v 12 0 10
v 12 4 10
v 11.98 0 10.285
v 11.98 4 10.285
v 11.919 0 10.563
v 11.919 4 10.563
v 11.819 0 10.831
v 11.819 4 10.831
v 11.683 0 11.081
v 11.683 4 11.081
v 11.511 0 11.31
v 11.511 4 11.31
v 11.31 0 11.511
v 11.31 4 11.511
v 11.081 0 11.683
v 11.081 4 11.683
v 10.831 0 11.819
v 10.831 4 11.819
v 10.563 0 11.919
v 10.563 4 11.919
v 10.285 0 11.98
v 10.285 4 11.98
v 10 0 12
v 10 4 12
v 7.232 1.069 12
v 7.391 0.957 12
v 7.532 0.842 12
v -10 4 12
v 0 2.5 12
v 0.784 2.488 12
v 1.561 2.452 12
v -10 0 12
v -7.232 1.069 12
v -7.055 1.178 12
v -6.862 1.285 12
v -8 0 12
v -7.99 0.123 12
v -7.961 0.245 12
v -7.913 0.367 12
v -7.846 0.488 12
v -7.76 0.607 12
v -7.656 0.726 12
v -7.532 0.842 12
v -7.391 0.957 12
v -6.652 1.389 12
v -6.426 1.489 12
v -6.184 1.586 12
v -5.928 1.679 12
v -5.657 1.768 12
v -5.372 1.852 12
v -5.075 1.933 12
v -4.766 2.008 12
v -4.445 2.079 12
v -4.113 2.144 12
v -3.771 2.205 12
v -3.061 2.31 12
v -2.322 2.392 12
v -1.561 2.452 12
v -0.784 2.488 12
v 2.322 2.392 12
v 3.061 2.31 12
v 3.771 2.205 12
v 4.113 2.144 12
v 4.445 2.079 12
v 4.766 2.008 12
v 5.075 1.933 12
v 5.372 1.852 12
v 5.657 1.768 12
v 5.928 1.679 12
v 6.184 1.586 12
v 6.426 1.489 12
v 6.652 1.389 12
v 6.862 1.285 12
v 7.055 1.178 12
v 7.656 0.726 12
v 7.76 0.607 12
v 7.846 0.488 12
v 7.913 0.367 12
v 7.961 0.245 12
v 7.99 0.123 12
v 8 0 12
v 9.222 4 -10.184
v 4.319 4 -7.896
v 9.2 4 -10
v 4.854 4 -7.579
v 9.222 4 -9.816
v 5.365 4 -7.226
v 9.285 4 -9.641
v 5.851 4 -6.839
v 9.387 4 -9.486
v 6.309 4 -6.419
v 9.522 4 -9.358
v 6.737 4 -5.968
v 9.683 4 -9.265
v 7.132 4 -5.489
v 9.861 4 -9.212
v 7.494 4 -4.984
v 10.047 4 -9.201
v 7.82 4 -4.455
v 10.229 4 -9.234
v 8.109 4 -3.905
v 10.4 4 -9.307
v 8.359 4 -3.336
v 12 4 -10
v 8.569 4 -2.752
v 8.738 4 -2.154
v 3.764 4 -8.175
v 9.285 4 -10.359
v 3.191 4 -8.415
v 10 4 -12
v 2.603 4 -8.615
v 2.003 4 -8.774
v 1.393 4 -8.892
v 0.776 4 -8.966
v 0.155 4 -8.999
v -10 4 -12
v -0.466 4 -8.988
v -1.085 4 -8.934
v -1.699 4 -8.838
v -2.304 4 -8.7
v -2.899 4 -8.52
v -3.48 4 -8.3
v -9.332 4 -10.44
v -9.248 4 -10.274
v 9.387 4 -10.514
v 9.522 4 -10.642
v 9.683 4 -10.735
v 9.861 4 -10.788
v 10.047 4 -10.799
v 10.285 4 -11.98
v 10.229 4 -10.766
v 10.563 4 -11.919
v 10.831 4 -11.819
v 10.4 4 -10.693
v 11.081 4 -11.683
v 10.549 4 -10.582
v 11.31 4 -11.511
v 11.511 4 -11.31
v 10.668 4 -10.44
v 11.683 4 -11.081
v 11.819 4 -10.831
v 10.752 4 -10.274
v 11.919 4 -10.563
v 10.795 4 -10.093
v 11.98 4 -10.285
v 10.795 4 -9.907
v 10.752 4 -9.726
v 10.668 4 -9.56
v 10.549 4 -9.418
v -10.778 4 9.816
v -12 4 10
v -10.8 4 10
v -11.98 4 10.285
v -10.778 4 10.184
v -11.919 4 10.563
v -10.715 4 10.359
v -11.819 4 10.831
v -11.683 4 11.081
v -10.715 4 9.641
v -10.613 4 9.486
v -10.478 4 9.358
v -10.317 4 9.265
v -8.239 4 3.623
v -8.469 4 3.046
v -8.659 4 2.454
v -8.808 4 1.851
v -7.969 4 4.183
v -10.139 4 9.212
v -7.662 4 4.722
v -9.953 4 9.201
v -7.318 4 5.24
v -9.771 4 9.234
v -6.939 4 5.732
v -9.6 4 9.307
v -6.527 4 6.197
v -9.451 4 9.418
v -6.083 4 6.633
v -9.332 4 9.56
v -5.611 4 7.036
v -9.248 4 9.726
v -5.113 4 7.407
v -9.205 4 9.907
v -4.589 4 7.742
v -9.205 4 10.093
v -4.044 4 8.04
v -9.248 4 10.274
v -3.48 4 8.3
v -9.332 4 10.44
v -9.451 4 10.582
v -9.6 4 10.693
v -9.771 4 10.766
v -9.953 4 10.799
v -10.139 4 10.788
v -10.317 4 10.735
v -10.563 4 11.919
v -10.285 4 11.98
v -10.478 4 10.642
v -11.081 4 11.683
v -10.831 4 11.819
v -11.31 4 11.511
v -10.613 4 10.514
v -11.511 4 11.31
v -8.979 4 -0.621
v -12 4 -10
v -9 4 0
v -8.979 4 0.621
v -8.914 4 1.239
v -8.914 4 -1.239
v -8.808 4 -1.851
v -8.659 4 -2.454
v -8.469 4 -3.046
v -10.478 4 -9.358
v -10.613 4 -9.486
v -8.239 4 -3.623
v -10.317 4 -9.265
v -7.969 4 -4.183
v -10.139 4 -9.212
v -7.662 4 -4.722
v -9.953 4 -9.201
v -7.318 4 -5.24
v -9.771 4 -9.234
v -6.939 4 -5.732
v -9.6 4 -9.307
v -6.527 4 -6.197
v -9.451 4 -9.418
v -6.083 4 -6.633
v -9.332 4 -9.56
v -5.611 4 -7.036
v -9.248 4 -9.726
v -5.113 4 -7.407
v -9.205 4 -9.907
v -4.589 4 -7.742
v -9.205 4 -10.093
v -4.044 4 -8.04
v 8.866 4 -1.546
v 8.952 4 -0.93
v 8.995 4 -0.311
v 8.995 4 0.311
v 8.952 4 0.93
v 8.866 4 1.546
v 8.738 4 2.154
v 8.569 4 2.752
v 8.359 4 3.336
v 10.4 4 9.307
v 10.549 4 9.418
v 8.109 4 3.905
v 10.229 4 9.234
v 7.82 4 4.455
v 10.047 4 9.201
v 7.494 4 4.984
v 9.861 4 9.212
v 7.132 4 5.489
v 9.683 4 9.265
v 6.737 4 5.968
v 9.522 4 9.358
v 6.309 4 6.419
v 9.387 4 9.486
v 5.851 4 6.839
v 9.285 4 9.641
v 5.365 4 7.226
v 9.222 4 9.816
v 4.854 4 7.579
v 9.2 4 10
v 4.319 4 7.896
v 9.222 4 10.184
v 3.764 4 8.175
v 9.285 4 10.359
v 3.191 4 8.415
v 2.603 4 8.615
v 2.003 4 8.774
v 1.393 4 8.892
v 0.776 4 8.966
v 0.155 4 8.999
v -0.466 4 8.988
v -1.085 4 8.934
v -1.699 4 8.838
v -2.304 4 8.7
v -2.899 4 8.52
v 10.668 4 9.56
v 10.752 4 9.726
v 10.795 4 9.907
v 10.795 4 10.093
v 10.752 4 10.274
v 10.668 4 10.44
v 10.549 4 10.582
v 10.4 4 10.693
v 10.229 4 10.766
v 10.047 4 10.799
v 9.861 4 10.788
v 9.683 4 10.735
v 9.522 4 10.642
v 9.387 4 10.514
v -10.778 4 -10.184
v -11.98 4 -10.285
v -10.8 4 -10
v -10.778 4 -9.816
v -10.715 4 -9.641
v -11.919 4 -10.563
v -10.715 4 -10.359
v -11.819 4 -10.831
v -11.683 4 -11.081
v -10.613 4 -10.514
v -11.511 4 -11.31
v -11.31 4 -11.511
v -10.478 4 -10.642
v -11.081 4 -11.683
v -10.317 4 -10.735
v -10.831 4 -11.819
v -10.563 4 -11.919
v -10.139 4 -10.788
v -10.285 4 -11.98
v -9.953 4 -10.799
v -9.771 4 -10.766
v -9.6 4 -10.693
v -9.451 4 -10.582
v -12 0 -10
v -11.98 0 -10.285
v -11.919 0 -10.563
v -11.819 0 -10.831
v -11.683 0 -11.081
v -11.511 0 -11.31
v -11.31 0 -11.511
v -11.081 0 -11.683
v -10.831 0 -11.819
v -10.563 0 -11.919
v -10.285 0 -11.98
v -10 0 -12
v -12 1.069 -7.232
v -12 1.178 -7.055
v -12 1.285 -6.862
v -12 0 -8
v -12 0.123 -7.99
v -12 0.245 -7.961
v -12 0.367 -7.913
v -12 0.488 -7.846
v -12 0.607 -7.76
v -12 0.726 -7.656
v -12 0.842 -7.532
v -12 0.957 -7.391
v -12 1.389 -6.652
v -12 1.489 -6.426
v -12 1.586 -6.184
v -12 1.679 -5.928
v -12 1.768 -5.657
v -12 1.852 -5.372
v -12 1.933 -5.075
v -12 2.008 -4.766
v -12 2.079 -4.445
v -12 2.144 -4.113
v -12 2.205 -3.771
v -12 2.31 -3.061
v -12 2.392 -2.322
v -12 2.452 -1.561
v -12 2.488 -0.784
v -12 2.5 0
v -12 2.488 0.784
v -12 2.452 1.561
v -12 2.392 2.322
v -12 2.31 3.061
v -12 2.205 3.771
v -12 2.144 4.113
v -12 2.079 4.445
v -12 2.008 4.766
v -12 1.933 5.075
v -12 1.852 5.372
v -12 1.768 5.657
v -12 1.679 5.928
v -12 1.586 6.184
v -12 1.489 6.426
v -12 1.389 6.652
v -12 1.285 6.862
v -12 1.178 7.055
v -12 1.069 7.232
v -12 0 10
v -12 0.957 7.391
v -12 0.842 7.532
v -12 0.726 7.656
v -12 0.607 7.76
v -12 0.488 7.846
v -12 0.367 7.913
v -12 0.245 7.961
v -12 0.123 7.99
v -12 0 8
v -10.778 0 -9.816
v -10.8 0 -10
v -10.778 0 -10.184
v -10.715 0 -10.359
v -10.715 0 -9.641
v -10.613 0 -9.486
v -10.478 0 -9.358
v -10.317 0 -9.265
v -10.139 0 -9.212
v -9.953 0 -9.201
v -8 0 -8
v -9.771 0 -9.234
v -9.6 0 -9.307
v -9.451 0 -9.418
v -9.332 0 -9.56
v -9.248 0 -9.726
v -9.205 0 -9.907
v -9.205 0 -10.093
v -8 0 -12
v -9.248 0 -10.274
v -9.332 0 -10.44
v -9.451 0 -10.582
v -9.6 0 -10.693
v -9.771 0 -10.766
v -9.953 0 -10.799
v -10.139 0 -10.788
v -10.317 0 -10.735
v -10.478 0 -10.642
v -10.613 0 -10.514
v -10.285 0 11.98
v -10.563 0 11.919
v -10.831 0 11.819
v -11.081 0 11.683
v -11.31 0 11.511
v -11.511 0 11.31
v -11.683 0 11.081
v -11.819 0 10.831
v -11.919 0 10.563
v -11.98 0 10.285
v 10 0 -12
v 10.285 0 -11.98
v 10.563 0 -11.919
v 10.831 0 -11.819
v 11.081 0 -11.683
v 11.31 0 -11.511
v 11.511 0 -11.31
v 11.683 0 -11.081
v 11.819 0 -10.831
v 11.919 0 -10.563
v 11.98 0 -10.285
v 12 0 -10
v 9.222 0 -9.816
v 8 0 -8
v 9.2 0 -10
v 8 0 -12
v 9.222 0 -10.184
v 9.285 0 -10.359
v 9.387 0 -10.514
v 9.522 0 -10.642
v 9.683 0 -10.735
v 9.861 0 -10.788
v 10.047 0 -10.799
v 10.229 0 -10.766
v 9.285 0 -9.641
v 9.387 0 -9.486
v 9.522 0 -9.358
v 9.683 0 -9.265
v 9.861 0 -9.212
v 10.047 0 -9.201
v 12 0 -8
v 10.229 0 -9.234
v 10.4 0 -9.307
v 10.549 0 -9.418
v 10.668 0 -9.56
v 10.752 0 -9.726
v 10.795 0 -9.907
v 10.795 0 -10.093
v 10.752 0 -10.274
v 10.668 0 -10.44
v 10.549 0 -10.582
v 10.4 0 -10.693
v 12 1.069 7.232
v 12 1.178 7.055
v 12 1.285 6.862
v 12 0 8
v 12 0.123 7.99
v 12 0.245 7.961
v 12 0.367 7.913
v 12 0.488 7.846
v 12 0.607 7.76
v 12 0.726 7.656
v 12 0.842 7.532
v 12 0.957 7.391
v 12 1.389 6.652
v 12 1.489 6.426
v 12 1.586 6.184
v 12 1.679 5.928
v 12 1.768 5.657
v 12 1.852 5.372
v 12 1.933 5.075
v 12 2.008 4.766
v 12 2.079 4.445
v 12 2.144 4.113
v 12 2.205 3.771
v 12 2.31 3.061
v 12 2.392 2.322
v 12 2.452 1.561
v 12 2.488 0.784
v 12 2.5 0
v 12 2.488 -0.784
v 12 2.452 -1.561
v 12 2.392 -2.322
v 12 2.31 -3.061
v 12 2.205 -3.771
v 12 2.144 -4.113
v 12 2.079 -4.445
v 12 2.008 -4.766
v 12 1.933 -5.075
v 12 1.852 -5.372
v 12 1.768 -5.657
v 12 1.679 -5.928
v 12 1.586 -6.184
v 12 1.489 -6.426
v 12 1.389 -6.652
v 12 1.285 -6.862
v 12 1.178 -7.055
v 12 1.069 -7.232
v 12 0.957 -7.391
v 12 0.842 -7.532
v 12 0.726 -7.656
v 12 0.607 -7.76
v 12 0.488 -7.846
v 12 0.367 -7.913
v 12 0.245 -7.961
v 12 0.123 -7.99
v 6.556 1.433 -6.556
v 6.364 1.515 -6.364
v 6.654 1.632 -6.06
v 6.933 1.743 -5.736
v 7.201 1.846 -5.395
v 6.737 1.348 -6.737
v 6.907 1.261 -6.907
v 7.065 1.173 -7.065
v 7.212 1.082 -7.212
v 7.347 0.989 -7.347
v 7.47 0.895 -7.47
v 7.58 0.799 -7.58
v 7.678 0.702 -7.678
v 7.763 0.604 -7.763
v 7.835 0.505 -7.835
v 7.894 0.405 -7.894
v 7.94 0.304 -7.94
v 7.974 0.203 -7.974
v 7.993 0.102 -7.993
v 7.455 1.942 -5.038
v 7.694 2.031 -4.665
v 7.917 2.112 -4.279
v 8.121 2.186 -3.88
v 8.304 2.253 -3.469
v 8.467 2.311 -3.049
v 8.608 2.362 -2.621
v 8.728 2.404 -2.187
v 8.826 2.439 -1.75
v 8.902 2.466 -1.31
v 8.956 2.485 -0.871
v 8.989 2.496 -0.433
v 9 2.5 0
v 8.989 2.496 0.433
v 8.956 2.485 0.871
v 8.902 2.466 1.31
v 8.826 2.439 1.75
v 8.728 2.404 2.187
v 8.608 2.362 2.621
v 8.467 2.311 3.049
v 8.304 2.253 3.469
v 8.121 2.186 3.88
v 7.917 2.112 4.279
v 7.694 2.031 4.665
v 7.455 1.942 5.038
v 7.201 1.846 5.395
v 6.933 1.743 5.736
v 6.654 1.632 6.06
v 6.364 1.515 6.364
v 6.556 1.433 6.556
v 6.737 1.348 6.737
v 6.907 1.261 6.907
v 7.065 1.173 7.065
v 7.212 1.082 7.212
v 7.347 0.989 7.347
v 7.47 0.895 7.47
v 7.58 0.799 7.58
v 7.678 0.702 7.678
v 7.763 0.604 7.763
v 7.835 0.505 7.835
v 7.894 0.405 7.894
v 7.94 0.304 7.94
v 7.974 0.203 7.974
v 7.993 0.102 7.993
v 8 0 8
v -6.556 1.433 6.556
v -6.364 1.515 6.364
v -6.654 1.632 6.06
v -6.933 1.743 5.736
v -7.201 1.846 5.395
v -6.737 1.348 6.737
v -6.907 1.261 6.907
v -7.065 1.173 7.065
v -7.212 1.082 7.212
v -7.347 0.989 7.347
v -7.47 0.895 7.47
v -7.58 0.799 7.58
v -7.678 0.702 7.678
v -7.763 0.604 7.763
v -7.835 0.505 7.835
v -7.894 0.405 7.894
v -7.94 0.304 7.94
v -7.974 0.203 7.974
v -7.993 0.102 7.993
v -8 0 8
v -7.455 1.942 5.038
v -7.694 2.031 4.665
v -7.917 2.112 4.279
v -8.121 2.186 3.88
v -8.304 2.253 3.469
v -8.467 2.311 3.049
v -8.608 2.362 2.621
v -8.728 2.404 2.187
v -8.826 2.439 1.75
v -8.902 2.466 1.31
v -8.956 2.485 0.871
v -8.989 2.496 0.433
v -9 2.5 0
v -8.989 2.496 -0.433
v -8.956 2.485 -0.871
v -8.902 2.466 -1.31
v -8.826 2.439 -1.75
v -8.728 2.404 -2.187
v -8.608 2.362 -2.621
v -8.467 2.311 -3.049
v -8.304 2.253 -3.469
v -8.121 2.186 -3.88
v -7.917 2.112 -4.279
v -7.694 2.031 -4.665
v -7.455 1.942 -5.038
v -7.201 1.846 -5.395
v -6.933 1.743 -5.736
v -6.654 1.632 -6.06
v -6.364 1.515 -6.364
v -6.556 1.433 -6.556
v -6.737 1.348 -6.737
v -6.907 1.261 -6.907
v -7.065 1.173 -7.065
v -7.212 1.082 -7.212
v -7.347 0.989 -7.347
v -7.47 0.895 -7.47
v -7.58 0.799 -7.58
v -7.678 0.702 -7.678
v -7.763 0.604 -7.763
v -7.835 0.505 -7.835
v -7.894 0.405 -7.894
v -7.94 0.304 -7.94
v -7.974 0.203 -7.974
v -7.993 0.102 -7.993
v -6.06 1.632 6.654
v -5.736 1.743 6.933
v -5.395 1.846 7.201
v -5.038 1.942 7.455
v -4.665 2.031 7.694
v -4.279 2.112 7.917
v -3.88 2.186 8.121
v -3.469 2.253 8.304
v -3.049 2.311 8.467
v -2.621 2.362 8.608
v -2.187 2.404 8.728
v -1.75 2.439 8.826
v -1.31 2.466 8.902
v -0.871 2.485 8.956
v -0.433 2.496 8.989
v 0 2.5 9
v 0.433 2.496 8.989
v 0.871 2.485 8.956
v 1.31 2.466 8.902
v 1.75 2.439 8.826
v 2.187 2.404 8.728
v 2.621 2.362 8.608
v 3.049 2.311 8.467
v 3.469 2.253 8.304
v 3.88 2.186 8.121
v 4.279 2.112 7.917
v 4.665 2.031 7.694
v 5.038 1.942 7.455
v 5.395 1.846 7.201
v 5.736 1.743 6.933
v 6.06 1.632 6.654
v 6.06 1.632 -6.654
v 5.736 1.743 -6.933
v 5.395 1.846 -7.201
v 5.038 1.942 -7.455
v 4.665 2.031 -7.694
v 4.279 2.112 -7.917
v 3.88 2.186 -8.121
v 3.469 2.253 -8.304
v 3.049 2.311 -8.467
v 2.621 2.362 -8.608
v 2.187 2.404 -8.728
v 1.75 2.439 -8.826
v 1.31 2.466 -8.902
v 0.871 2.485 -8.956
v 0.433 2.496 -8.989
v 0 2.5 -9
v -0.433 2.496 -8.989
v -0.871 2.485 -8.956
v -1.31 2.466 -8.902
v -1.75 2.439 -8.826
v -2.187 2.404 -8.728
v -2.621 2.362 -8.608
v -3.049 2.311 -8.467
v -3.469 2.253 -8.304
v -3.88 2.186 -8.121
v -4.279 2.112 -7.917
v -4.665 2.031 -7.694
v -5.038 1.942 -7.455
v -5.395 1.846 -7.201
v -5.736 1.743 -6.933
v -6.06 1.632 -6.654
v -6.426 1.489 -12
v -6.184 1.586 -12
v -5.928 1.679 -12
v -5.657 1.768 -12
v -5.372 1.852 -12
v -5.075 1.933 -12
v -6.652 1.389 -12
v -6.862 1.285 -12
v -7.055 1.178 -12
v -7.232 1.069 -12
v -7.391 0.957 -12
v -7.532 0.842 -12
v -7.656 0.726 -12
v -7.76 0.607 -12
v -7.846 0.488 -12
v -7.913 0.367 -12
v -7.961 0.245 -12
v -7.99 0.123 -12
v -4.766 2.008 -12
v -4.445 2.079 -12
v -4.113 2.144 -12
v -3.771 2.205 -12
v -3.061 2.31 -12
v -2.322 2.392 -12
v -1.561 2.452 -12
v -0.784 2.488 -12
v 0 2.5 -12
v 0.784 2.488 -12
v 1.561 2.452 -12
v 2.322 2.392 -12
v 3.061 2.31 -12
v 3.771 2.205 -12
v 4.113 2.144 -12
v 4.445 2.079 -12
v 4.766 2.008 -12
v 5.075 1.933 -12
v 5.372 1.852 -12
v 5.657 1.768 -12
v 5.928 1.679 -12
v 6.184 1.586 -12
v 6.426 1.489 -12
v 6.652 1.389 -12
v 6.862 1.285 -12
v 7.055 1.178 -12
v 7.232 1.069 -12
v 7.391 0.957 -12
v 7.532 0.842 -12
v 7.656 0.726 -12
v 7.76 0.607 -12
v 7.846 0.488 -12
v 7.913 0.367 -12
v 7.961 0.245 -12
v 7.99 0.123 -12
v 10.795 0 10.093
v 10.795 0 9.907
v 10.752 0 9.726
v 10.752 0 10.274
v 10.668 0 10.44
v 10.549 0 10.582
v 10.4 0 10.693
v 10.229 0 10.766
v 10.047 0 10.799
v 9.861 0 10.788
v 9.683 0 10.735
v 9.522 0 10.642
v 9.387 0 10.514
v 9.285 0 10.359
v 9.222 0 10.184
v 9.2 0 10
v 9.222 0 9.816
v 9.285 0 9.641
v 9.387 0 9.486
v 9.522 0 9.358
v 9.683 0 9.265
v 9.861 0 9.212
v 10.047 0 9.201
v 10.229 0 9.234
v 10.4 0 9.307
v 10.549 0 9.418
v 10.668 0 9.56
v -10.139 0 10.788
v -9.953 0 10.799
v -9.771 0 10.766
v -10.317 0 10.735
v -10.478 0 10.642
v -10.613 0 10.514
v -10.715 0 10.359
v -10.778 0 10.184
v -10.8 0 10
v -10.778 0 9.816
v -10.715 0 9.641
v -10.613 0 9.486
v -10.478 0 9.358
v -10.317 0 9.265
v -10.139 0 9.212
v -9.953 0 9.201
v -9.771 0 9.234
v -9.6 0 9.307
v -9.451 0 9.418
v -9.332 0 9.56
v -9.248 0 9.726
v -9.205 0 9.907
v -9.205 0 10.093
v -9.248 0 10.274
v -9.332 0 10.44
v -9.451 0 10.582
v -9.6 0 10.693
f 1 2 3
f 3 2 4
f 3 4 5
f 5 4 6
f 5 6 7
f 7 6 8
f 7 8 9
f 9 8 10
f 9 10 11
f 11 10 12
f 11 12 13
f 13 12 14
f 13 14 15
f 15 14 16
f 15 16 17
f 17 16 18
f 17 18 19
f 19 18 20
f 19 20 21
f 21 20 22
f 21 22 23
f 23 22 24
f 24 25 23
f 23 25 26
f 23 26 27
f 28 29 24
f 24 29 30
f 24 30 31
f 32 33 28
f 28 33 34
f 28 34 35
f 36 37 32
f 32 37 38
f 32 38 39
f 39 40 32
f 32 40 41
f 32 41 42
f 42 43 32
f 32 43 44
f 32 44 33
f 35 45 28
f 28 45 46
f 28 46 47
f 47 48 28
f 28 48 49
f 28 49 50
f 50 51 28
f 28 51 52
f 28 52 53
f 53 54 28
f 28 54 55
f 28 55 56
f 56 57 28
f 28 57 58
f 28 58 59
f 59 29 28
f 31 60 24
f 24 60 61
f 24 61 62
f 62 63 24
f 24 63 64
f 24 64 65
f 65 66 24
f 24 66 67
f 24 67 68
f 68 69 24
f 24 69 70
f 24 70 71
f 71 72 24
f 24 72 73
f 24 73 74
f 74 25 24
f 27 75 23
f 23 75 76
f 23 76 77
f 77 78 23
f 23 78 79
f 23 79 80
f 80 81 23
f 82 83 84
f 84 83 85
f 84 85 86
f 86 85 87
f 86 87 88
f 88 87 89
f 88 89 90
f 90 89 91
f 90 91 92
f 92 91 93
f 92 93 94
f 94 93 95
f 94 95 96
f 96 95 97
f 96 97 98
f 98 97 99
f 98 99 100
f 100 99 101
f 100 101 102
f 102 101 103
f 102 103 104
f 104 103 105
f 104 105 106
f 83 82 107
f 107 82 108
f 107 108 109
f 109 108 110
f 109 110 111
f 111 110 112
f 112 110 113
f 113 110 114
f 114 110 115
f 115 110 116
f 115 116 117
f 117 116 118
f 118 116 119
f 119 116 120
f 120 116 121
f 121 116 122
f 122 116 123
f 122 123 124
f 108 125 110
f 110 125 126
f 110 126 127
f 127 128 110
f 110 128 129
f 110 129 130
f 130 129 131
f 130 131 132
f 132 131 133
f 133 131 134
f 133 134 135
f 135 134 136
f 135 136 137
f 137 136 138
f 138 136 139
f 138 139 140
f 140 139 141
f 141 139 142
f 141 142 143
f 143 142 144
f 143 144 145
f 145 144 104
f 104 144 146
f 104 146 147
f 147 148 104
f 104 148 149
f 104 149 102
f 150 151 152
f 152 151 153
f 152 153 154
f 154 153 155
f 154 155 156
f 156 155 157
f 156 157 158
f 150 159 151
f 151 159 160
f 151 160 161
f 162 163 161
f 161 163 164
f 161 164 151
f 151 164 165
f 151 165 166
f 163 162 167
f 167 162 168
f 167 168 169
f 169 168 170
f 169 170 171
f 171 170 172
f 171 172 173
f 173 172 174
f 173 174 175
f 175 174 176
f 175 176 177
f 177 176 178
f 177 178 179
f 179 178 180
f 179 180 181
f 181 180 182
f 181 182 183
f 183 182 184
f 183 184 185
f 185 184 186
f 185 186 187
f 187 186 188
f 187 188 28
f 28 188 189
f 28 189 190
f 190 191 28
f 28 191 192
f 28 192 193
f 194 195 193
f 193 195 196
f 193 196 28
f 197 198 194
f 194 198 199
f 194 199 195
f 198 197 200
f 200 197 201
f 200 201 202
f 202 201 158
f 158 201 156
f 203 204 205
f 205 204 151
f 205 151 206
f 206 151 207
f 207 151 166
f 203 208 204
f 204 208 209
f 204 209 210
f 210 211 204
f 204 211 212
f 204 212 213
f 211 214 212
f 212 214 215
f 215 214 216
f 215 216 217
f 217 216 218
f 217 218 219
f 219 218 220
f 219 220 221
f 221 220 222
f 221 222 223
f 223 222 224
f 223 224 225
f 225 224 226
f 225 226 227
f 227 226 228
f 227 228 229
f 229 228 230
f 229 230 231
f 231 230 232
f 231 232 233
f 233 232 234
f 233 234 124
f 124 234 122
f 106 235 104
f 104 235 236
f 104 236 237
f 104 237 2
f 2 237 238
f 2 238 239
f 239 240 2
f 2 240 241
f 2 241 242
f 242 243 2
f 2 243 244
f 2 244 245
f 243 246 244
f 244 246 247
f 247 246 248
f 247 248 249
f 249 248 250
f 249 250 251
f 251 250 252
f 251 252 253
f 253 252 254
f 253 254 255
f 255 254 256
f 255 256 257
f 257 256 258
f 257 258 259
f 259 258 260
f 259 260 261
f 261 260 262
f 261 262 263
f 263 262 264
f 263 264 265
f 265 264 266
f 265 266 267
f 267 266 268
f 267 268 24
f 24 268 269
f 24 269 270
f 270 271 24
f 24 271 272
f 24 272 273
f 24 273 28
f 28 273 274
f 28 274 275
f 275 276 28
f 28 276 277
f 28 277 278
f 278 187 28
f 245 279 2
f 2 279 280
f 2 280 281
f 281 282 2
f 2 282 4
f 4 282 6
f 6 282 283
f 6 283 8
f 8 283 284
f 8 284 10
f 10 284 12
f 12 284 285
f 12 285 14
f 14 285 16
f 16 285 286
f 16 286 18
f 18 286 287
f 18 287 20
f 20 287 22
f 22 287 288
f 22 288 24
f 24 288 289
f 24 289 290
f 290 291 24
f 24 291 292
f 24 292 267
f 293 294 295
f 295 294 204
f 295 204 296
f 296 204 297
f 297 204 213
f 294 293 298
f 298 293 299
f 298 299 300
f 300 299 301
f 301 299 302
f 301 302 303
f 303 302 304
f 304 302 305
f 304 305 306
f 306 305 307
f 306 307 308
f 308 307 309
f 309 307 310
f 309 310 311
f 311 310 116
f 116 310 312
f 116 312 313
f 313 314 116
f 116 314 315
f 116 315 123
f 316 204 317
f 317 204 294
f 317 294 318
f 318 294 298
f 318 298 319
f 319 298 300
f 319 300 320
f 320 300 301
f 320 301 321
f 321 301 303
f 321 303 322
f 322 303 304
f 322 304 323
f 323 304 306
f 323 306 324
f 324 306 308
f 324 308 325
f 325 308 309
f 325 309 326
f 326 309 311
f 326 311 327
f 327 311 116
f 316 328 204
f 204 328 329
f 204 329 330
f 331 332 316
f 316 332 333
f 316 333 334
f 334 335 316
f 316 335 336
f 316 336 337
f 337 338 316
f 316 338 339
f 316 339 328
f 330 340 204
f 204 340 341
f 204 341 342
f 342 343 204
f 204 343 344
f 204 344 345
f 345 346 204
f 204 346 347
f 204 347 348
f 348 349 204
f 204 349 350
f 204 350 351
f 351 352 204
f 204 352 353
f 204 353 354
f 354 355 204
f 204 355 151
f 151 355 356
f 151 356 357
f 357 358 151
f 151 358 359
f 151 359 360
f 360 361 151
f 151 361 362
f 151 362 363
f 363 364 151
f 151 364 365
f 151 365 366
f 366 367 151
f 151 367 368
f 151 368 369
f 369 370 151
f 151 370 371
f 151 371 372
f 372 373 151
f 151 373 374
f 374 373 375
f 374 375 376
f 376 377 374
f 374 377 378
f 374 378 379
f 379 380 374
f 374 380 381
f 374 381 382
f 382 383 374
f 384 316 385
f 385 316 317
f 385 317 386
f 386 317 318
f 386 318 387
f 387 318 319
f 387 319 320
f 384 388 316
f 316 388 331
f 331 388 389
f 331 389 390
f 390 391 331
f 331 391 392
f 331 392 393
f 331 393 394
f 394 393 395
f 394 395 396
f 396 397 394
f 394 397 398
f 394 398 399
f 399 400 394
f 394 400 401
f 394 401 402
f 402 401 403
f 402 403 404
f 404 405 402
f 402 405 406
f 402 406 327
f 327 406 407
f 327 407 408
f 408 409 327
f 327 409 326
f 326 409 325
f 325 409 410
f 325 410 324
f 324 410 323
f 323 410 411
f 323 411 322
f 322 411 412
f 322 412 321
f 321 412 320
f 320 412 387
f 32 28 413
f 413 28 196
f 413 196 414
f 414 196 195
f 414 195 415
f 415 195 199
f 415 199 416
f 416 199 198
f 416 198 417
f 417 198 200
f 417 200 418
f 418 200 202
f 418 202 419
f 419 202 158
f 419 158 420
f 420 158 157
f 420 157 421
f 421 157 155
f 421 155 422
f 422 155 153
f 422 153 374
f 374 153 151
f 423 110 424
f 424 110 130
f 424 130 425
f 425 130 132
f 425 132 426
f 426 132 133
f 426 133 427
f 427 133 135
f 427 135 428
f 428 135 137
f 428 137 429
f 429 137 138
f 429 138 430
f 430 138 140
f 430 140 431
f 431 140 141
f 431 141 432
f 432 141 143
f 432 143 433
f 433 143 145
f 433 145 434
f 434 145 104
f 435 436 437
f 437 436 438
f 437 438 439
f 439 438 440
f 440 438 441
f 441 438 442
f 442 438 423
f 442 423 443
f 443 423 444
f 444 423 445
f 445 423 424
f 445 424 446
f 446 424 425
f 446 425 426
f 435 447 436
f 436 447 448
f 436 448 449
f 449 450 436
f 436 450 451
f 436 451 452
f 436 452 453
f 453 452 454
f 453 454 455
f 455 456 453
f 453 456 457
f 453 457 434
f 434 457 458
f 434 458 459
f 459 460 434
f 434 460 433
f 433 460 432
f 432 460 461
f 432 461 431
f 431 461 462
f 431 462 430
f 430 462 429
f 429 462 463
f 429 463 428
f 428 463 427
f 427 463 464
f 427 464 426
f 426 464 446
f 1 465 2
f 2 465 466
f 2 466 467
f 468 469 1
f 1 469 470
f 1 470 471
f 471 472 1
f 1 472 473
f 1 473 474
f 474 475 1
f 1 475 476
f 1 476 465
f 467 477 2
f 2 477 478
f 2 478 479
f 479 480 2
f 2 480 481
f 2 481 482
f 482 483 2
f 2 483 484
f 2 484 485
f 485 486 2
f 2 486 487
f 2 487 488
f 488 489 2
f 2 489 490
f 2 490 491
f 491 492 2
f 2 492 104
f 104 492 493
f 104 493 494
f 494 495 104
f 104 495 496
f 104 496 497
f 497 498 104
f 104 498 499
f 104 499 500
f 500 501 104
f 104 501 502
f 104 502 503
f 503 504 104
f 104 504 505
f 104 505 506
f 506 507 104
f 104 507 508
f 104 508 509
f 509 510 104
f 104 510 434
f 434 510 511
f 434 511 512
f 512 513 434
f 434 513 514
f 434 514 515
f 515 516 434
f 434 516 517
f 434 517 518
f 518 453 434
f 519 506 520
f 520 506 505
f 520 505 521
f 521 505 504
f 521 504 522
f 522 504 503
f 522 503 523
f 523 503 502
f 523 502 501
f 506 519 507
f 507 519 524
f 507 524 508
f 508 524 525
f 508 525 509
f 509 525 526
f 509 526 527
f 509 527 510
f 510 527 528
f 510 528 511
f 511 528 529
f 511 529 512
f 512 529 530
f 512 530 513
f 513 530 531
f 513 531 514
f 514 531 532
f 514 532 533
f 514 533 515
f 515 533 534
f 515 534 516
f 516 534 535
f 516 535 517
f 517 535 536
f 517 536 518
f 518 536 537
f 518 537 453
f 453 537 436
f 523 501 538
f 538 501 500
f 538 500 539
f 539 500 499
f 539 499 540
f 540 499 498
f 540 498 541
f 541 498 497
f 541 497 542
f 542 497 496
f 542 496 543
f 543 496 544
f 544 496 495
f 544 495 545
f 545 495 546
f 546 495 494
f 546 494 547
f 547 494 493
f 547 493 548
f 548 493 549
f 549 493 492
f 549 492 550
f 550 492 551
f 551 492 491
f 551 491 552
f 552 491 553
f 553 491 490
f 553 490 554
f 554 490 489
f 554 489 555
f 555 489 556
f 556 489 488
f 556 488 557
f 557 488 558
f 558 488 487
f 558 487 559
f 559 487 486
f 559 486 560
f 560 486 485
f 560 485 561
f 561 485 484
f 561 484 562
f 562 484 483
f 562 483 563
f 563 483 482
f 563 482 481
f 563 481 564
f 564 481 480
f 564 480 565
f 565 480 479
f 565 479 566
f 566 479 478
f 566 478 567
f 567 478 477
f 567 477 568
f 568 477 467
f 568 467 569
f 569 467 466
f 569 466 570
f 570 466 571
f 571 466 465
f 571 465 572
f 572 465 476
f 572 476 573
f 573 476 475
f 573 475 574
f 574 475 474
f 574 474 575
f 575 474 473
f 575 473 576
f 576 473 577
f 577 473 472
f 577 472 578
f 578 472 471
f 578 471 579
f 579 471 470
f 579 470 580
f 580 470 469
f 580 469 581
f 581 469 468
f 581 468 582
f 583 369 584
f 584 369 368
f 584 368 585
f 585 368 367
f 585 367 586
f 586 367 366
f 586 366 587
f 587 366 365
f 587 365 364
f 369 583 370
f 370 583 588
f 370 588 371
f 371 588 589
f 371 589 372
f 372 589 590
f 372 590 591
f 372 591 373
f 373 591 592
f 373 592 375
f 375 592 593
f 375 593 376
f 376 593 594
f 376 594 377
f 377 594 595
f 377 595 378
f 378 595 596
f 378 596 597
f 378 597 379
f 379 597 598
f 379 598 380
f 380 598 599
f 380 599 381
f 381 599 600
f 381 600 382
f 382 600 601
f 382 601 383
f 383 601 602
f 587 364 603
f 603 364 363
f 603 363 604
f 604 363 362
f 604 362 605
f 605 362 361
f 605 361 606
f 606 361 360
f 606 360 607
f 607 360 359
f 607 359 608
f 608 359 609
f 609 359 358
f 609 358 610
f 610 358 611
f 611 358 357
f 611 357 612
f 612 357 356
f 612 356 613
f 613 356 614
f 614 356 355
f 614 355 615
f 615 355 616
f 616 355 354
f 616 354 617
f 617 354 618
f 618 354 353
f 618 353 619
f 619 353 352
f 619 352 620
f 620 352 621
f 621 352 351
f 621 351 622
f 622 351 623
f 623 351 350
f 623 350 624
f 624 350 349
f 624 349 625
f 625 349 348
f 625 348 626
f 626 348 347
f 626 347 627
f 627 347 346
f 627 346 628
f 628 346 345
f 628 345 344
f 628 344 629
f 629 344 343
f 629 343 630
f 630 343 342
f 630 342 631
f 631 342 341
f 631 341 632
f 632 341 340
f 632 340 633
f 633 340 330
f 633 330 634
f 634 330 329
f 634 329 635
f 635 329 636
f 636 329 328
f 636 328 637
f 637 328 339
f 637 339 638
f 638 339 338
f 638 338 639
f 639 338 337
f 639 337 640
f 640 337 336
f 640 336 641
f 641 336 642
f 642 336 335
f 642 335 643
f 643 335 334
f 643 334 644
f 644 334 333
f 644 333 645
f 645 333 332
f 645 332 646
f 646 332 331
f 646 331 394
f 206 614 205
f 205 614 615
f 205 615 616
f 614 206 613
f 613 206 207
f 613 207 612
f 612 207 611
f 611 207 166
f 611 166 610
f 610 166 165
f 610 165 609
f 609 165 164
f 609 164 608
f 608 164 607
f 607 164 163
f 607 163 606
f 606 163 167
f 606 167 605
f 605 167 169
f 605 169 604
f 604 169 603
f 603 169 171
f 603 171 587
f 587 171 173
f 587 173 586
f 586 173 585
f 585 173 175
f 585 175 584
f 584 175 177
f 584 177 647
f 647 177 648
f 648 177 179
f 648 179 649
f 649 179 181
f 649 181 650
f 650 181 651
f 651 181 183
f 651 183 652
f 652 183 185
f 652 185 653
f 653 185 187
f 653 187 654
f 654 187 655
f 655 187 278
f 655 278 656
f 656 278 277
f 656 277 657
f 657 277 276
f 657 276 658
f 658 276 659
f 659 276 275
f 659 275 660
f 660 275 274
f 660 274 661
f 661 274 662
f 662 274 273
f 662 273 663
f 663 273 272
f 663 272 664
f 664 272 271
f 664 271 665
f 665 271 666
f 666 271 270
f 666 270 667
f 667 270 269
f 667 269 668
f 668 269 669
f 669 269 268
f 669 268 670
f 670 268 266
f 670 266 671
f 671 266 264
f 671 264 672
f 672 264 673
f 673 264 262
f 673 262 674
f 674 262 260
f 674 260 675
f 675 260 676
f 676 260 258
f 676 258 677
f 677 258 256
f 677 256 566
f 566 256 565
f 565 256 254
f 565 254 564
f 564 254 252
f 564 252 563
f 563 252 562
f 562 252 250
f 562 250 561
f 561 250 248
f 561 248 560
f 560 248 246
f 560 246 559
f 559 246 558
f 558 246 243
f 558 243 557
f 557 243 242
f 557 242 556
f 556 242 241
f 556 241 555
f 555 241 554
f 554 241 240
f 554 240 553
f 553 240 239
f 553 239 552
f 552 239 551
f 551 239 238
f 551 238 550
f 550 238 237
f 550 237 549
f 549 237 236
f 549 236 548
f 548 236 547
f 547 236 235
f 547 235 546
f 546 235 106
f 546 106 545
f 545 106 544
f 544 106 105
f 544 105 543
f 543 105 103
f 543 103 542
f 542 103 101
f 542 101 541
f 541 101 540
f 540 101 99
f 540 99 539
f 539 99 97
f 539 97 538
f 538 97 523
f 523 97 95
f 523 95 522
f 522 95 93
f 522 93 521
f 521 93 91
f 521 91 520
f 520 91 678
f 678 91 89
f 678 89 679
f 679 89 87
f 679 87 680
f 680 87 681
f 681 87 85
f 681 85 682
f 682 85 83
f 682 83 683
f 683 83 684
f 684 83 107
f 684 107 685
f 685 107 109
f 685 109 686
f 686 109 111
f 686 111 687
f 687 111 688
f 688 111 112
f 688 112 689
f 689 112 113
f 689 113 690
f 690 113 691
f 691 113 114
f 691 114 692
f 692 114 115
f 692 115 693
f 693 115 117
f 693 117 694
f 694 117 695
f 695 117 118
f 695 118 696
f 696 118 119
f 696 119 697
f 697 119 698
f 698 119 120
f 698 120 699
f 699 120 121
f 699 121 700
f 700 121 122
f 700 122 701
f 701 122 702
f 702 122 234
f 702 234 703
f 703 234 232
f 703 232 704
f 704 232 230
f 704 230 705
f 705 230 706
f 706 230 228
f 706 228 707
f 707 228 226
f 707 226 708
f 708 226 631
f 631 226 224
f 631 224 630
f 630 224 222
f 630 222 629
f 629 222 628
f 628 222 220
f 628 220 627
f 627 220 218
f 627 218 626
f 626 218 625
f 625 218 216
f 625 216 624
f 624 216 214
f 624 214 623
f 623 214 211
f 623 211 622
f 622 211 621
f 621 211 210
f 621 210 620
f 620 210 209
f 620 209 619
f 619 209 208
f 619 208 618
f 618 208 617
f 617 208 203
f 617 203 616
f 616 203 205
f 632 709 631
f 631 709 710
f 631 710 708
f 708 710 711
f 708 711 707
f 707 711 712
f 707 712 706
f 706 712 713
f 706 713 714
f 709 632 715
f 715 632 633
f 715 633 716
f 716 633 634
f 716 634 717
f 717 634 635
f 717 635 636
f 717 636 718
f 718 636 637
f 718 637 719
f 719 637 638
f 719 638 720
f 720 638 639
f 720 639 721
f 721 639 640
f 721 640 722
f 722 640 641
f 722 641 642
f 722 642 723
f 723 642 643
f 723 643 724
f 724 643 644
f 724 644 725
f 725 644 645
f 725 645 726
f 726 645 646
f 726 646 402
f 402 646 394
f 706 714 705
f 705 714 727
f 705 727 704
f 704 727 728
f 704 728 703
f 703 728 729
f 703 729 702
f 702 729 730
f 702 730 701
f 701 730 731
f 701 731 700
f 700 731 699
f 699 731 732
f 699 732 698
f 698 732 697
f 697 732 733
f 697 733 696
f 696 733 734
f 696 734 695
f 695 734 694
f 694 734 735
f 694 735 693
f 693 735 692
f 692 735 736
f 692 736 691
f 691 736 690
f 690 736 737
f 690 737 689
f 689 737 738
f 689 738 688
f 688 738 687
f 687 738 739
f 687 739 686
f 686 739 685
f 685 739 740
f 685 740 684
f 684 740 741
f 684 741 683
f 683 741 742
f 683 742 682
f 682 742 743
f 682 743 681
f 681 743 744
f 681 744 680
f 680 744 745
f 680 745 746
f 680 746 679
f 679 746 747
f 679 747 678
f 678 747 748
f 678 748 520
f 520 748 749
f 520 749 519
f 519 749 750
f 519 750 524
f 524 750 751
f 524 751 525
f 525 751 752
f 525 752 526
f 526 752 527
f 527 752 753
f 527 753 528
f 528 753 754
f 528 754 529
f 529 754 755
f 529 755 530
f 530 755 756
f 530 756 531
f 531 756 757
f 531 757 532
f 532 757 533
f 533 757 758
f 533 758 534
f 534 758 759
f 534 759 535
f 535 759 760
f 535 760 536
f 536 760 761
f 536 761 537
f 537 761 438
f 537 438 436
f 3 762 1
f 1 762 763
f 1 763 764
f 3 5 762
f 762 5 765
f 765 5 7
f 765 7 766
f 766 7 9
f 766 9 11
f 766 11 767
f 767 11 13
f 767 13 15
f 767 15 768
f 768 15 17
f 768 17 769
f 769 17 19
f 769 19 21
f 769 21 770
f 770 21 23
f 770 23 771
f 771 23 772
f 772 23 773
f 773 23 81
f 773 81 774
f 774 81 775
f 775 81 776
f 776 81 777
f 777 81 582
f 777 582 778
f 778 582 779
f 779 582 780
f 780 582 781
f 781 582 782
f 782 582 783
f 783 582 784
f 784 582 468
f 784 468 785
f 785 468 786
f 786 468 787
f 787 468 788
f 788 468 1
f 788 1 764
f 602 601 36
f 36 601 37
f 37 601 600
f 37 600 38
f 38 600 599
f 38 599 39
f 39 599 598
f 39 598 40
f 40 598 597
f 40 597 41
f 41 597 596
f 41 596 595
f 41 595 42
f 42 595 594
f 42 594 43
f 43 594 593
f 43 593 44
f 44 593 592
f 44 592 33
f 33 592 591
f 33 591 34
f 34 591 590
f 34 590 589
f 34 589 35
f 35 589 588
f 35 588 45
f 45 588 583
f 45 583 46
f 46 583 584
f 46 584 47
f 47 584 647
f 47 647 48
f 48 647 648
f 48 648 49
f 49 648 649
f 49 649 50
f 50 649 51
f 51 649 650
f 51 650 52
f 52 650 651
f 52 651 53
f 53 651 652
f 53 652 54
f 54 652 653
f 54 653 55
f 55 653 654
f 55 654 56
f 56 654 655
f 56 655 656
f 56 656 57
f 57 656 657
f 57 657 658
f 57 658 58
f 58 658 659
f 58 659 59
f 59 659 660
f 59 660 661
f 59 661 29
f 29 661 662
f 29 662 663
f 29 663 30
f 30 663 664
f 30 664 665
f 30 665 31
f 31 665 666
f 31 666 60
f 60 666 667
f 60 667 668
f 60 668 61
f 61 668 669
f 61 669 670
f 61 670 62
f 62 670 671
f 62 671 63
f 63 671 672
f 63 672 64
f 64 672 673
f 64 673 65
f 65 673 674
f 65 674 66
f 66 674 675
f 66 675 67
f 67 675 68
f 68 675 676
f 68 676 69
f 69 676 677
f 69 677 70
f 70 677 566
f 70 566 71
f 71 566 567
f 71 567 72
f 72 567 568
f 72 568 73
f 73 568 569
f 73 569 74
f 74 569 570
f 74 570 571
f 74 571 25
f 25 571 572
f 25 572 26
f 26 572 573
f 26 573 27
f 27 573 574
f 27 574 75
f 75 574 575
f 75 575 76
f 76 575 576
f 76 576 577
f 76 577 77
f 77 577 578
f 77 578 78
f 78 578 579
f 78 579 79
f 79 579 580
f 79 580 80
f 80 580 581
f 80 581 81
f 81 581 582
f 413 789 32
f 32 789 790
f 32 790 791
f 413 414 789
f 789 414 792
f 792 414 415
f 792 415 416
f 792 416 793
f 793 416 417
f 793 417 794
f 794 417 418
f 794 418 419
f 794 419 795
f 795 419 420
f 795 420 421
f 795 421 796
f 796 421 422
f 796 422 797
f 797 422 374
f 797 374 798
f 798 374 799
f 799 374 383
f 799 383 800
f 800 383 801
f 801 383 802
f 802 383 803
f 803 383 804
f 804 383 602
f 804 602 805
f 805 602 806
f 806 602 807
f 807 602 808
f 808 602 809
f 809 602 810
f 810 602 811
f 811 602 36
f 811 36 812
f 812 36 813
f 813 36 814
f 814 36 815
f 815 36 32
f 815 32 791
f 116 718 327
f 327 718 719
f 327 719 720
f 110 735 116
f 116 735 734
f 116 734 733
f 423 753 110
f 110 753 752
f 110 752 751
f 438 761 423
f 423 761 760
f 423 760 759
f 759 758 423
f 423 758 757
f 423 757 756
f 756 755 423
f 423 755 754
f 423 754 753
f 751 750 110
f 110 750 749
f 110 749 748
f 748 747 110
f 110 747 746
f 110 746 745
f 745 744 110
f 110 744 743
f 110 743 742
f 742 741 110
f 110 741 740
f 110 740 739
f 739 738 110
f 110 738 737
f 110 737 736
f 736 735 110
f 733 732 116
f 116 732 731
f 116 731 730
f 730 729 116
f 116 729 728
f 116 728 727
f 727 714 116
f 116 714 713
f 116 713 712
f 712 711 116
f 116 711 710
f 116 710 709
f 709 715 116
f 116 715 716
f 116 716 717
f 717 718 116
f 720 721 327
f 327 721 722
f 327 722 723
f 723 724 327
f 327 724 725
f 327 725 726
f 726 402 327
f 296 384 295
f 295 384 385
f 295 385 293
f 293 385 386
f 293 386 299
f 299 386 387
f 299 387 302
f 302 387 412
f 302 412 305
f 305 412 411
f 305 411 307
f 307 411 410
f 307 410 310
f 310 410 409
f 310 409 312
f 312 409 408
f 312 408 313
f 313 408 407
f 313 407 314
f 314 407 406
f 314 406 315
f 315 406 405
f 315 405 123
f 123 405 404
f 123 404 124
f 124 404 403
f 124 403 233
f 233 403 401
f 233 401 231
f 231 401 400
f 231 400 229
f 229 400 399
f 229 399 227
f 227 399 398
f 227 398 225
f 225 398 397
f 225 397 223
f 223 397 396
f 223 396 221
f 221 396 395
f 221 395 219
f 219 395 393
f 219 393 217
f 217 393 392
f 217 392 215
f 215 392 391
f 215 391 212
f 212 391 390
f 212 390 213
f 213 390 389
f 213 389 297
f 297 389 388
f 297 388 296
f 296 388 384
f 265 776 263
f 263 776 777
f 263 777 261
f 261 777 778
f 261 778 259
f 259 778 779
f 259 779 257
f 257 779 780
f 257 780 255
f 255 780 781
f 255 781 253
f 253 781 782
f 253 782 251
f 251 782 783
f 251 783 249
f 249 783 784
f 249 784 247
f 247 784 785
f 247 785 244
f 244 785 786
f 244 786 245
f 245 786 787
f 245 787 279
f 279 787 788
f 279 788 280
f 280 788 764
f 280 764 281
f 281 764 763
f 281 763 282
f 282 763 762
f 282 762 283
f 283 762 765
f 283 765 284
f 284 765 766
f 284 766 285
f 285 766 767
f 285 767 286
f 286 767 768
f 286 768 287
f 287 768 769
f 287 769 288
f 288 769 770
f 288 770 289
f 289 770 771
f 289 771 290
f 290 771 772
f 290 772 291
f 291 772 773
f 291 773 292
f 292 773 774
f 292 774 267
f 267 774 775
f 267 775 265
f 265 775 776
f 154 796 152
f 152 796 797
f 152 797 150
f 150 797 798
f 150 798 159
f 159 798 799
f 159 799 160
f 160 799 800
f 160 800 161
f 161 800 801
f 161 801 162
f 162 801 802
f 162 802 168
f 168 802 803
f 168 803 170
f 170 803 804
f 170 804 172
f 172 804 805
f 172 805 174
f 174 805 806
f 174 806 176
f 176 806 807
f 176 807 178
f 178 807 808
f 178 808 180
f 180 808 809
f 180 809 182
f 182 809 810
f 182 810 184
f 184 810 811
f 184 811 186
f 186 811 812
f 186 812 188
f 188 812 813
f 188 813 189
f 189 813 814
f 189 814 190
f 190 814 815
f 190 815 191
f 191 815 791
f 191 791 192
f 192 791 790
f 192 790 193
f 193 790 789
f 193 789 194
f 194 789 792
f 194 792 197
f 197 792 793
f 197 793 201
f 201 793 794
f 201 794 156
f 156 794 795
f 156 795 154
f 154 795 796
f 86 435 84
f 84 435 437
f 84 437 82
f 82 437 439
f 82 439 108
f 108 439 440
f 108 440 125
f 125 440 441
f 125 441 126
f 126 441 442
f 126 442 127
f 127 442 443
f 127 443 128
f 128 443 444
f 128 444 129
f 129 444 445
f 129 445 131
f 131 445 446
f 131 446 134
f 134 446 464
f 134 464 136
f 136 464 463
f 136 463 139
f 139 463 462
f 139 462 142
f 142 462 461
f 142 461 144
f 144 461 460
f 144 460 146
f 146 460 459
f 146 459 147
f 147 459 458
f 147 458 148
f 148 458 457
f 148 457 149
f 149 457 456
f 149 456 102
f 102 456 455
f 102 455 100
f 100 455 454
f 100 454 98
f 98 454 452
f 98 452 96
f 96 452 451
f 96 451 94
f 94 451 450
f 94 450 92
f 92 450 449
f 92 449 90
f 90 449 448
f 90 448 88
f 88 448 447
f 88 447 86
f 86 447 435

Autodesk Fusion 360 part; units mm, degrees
sketch "Skizze1" plane through (0, 0, 0) normal (0, 1, 0) x (1, 0, 0)
  line L0 (10, 10) -> (-10, 10) construction
  line L1 (-10, 10) -> (-10, -10) construction
  line L2 (-10, -10) -> (10, -10) construction
  line L3 (10, -10) -> (10, 10) construction
  line L4 (10, 10) -> (-10, -10) construction
  line L5 (-10, 10) -> (10, -10) construction
  circle A0 centre (-10, 10) radius 0.8
  circle A1 centre (10, 10) radius 0.8
  circle A2 centre (10, -10) radius 0.8
  circle A3 centre (-10, -10) radius 0.8
  line L6 (12, 12) -> (-12, 12)
  line L7 (-12, 12) -> (-12, -12)
  line L8 (-12, -12) -> (12, -12)
  line L9 (12, -12) -> (12, 12)
  line L10 (12, 12) -> (-12, -12) construction
  line L11 (-12, 12) -> (12, -12) construction
  circle A4 centre (0, 0) radius 9
  dimension "d1" = 20
  dimension "d2" = 20
  dimension "d3" = 1.6
  dimension "d4" = 24
  dimension "d16" = 18
extrude "Extrusion1" add sketch "Skizze1" along normal blind 4
sketch "Skizze2" plane through (0, 0, 12) normal (0, 0, 1) x (1, 0, 0)
  line L0 (-12, 0) -> (12, 0)
  line L1 (12, 4) -> (-12, 4)
  line L2 (-12, 4) -> (-12, 0)
  ellipse E0 centre (0, 0) end of major axis (8, 0) minor radius 2.5
  line L3 (-8, 0) -> (8, 0)
  line L4 (0, -2.5) -> (0, 2.5)
  dimension "d8" = 16
  dimension "d9" = 5
extrude "Extrusion2" cut sketch "Skizze2" against normal blind 27 contours L0 E0 L3 L4 | L0 E0 L3 L4 picked at (-4.5024, 0.6044) picked at (4.5261, 0.5973)
sketch "Skizze3" plane through (12, 0, 0) normal (1, 0, 0) x (0, 0, -1)
  line L0 (-12, 0) -> (12, 0)
  line L1 (12, 0) -> (12, 4)
  line L2 (12, 4) -> (-12, 4)
  line L3 (-12, 4) -> (-12, 0)
  ellipse E0 centre (0, 0) end of major axis (8, 0) minor radius 2.5
  line L4 (-8, 0) -> (8, 0)
  line L5 (0, -2.5) -> (0, 2.5)
  dimension "d12" = 5
  dimension "d13" = 16
extrude "Extrusion3" cut sketch "Skizze3" against normal blind 27 contours L0 E0 L4 L5 | L0 E0 L4 L5 picked at (-4.5024, 0.6044) picked at (4.5261, 0.5973)
fillet "Abrundung1" radius 2 4 edges at (12, 2, -12) (-12, 2, 12) (-12, 2, -12) (12, 2, 12)
equation "d1 = d2"
